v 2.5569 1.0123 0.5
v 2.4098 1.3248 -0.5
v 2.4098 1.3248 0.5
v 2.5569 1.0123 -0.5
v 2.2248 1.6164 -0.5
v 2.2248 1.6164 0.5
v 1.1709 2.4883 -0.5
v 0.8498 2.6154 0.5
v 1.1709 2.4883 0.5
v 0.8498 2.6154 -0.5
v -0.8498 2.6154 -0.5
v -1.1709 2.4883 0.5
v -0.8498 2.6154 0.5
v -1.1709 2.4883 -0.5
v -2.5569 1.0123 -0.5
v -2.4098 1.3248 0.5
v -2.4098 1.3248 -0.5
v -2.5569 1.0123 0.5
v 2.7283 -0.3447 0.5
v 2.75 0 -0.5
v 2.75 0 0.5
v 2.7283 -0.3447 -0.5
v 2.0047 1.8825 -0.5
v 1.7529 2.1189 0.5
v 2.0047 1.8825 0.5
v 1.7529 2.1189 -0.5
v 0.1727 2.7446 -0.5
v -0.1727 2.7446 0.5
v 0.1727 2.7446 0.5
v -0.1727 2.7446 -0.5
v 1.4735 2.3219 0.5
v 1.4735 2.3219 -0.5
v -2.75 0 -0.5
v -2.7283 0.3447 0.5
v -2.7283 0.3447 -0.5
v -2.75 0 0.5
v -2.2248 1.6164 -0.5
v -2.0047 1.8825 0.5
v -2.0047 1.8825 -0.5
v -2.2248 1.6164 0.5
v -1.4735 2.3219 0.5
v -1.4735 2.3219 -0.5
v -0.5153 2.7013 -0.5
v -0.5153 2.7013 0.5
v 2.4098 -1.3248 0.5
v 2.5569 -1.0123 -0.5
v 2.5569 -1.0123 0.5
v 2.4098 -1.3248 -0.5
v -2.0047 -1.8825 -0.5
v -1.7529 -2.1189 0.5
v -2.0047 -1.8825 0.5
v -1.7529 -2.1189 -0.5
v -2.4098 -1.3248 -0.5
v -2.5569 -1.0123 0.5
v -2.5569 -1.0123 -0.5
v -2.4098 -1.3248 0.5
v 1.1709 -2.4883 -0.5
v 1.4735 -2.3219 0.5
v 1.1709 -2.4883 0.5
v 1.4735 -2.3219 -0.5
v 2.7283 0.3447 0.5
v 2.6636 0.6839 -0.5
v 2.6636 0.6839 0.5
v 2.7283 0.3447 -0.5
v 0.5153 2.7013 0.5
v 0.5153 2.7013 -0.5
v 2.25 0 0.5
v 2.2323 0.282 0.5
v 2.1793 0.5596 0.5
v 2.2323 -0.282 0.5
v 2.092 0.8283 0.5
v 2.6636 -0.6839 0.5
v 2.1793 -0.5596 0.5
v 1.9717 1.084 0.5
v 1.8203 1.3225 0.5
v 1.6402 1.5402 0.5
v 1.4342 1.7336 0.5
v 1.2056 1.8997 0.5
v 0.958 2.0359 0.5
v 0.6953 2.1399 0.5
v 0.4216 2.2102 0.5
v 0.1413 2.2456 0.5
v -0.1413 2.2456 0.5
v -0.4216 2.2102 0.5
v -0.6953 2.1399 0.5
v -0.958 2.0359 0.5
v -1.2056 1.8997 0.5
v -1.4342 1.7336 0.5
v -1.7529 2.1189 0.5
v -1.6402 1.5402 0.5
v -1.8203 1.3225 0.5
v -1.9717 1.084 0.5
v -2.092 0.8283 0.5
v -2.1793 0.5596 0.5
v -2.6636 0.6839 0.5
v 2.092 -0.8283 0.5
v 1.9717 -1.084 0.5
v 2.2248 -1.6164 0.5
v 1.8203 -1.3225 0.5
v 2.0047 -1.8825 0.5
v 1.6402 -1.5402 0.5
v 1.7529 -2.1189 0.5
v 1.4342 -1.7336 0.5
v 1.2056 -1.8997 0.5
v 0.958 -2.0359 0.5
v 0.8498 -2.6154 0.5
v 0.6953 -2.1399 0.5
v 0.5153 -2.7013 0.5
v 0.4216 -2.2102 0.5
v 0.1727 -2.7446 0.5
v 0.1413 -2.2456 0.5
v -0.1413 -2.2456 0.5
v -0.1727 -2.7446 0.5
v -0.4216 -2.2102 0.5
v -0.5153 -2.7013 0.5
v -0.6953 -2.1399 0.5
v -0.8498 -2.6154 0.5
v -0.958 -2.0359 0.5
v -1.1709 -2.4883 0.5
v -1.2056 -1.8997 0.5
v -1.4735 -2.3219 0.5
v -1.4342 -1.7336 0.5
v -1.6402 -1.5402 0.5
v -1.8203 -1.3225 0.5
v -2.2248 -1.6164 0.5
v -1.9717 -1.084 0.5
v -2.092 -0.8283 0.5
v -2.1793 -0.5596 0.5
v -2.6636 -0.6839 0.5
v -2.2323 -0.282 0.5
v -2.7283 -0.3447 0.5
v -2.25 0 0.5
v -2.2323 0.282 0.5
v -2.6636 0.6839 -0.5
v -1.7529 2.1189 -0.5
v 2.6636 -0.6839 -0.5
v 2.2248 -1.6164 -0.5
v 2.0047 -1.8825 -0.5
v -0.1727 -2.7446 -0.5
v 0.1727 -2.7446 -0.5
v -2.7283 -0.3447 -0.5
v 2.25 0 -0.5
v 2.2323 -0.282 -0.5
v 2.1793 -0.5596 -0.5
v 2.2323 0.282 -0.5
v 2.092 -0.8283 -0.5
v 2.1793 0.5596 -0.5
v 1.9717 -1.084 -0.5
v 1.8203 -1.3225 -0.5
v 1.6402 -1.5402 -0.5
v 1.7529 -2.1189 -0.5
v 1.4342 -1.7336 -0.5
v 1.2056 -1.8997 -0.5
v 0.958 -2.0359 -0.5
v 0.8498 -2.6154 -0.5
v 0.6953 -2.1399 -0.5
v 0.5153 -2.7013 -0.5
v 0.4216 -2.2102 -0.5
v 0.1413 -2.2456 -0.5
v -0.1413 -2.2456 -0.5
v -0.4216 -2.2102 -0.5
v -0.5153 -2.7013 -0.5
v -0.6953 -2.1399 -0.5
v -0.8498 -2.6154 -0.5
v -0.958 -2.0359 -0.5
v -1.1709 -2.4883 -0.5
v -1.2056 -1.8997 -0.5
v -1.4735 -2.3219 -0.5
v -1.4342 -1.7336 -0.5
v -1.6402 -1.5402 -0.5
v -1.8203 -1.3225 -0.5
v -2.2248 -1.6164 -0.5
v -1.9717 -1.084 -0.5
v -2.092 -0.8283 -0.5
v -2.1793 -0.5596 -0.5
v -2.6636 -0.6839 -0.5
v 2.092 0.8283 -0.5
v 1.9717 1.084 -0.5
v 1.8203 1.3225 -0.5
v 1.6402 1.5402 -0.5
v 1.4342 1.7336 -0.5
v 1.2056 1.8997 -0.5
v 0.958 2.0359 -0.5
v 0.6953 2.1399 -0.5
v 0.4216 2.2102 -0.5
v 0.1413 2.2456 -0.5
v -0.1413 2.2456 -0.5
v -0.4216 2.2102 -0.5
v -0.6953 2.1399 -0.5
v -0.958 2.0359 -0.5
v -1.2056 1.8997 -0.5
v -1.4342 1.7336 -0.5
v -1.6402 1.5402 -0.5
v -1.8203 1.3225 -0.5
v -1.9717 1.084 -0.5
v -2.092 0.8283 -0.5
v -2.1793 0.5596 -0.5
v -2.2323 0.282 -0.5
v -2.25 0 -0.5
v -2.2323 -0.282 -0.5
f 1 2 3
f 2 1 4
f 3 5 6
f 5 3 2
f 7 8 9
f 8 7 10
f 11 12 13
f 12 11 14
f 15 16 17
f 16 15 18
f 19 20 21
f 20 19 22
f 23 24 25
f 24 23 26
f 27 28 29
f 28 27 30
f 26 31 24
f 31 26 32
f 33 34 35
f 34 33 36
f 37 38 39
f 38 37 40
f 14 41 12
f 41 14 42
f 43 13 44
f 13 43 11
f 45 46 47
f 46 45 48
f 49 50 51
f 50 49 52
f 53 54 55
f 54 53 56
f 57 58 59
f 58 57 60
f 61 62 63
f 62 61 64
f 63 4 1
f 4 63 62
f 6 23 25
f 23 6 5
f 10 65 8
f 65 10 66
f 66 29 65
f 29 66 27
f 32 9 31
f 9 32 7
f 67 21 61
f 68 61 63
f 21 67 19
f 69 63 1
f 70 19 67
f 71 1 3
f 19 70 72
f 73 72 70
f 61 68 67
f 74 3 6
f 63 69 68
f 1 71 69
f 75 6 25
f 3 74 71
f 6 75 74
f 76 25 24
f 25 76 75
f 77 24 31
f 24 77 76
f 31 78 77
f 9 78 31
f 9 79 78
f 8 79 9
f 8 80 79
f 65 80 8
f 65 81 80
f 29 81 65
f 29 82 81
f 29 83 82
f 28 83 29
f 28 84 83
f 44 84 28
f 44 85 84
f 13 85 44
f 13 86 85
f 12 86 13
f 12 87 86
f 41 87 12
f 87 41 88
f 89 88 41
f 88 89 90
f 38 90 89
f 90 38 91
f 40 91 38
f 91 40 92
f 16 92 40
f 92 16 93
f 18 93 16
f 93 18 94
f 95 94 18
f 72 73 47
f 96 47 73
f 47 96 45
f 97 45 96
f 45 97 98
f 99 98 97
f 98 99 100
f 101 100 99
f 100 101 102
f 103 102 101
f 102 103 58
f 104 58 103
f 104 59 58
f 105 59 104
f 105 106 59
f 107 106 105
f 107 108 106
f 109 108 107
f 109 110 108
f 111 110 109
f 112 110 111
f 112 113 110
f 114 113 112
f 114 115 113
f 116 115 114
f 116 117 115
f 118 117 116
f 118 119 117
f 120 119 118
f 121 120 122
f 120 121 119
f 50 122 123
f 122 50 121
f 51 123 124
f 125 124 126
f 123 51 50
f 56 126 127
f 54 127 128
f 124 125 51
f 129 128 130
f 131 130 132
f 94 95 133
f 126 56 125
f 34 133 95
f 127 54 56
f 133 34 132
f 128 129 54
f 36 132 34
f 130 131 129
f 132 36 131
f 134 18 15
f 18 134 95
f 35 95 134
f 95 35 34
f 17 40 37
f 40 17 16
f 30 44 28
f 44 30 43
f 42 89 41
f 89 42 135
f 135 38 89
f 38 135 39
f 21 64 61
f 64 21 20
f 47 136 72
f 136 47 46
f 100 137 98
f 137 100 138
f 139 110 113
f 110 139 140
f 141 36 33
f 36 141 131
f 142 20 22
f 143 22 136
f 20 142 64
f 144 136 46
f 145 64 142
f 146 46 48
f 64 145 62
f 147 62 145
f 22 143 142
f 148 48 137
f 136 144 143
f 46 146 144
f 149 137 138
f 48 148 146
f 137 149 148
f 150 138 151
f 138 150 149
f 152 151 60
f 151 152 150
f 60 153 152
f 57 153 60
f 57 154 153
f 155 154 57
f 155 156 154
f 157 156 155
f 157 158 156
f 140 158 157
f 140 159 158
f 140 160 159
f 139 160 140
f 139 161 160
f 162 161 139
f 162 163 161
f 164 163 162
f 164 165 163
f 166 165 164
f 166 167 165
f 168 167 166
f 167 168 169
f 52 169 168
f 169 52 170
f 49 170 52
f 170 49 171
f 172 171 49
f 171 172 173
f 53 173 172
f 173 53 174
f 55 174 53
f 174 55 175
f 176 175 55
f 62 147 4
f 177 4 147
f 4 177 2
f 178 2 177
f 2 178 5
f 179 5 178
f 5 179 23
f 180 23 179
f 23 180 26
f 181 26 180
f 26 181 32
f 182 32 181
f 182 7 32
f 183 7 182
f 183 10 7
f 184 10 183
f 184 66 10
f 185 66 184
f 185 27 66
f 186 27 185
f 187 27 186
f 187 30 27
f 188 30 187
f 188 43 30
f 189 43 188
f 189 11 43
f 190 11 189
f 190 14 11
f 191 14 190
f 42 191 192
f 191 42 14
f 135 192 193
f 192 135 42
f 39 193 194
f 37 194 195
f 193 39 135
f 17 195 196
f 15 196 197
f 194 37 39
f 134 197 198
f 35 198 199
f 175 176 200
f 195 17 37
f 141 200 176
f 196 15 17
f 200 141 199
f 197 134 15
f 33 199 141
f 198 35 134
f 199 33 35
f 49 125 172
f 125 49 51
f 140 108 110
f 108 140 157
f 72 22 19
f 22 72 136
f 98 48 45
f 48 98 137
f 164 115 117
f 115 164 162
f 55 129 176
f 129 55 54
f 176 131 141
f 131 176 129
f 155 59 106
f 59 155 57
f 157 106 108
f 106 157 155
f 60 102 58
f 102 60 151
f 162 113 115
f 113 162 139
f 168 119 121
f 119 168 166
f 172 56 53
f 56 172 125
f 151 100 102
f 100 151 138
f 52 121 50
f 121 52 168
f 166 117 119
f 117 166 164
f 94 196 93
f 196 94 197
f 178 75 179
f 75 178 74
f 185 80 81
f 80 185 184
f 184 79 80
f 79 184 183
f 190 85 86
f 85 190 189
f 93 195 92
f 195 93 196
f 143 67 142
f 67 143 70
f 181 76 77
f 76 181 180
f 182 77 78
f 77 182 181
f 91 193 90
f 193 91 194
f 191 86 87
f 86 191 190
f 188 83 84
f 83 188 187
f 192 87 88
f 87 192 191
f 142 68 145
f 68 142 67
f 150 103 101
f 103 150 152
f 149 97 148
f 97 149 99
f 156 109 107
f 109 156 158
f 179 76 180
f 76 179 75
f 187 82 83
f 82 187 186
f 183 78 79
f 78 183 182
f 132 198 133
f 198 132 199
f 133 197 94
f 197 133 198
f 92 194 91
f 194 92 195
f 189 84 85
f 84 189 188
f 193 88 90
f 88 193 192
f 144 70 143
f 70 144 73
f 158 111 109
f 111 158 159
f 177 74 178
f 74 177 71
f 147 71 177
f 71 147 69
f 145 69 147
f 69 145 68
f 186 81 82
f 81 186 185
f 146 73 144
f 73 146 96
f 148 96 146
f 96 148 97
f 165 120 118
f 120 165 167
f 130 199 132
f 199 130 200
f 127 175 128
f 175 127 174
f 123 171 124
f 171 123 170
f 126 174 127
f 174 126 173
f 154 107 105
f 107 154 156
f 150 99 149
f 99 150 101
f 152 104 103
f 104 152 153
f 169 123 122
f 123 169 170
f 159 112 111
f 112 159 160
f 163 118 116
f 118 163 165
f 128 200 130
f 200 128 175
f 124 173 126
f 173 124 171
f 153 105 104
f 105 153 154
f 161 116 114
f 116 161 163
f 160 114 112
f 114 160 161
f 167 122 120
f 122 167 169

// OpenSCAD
$fn = 50;


difference() {
	union() {
		translate(v = [0, 0, -0.5000000000]) {
			cylinder(h = 1, r = 2.7500000000);
		}
	}
	union() {
		translate(v = [0, 0, -100.0000000000]) {
			cylinder(h = 200, r = 2.2500000000);
		}
	}
}
